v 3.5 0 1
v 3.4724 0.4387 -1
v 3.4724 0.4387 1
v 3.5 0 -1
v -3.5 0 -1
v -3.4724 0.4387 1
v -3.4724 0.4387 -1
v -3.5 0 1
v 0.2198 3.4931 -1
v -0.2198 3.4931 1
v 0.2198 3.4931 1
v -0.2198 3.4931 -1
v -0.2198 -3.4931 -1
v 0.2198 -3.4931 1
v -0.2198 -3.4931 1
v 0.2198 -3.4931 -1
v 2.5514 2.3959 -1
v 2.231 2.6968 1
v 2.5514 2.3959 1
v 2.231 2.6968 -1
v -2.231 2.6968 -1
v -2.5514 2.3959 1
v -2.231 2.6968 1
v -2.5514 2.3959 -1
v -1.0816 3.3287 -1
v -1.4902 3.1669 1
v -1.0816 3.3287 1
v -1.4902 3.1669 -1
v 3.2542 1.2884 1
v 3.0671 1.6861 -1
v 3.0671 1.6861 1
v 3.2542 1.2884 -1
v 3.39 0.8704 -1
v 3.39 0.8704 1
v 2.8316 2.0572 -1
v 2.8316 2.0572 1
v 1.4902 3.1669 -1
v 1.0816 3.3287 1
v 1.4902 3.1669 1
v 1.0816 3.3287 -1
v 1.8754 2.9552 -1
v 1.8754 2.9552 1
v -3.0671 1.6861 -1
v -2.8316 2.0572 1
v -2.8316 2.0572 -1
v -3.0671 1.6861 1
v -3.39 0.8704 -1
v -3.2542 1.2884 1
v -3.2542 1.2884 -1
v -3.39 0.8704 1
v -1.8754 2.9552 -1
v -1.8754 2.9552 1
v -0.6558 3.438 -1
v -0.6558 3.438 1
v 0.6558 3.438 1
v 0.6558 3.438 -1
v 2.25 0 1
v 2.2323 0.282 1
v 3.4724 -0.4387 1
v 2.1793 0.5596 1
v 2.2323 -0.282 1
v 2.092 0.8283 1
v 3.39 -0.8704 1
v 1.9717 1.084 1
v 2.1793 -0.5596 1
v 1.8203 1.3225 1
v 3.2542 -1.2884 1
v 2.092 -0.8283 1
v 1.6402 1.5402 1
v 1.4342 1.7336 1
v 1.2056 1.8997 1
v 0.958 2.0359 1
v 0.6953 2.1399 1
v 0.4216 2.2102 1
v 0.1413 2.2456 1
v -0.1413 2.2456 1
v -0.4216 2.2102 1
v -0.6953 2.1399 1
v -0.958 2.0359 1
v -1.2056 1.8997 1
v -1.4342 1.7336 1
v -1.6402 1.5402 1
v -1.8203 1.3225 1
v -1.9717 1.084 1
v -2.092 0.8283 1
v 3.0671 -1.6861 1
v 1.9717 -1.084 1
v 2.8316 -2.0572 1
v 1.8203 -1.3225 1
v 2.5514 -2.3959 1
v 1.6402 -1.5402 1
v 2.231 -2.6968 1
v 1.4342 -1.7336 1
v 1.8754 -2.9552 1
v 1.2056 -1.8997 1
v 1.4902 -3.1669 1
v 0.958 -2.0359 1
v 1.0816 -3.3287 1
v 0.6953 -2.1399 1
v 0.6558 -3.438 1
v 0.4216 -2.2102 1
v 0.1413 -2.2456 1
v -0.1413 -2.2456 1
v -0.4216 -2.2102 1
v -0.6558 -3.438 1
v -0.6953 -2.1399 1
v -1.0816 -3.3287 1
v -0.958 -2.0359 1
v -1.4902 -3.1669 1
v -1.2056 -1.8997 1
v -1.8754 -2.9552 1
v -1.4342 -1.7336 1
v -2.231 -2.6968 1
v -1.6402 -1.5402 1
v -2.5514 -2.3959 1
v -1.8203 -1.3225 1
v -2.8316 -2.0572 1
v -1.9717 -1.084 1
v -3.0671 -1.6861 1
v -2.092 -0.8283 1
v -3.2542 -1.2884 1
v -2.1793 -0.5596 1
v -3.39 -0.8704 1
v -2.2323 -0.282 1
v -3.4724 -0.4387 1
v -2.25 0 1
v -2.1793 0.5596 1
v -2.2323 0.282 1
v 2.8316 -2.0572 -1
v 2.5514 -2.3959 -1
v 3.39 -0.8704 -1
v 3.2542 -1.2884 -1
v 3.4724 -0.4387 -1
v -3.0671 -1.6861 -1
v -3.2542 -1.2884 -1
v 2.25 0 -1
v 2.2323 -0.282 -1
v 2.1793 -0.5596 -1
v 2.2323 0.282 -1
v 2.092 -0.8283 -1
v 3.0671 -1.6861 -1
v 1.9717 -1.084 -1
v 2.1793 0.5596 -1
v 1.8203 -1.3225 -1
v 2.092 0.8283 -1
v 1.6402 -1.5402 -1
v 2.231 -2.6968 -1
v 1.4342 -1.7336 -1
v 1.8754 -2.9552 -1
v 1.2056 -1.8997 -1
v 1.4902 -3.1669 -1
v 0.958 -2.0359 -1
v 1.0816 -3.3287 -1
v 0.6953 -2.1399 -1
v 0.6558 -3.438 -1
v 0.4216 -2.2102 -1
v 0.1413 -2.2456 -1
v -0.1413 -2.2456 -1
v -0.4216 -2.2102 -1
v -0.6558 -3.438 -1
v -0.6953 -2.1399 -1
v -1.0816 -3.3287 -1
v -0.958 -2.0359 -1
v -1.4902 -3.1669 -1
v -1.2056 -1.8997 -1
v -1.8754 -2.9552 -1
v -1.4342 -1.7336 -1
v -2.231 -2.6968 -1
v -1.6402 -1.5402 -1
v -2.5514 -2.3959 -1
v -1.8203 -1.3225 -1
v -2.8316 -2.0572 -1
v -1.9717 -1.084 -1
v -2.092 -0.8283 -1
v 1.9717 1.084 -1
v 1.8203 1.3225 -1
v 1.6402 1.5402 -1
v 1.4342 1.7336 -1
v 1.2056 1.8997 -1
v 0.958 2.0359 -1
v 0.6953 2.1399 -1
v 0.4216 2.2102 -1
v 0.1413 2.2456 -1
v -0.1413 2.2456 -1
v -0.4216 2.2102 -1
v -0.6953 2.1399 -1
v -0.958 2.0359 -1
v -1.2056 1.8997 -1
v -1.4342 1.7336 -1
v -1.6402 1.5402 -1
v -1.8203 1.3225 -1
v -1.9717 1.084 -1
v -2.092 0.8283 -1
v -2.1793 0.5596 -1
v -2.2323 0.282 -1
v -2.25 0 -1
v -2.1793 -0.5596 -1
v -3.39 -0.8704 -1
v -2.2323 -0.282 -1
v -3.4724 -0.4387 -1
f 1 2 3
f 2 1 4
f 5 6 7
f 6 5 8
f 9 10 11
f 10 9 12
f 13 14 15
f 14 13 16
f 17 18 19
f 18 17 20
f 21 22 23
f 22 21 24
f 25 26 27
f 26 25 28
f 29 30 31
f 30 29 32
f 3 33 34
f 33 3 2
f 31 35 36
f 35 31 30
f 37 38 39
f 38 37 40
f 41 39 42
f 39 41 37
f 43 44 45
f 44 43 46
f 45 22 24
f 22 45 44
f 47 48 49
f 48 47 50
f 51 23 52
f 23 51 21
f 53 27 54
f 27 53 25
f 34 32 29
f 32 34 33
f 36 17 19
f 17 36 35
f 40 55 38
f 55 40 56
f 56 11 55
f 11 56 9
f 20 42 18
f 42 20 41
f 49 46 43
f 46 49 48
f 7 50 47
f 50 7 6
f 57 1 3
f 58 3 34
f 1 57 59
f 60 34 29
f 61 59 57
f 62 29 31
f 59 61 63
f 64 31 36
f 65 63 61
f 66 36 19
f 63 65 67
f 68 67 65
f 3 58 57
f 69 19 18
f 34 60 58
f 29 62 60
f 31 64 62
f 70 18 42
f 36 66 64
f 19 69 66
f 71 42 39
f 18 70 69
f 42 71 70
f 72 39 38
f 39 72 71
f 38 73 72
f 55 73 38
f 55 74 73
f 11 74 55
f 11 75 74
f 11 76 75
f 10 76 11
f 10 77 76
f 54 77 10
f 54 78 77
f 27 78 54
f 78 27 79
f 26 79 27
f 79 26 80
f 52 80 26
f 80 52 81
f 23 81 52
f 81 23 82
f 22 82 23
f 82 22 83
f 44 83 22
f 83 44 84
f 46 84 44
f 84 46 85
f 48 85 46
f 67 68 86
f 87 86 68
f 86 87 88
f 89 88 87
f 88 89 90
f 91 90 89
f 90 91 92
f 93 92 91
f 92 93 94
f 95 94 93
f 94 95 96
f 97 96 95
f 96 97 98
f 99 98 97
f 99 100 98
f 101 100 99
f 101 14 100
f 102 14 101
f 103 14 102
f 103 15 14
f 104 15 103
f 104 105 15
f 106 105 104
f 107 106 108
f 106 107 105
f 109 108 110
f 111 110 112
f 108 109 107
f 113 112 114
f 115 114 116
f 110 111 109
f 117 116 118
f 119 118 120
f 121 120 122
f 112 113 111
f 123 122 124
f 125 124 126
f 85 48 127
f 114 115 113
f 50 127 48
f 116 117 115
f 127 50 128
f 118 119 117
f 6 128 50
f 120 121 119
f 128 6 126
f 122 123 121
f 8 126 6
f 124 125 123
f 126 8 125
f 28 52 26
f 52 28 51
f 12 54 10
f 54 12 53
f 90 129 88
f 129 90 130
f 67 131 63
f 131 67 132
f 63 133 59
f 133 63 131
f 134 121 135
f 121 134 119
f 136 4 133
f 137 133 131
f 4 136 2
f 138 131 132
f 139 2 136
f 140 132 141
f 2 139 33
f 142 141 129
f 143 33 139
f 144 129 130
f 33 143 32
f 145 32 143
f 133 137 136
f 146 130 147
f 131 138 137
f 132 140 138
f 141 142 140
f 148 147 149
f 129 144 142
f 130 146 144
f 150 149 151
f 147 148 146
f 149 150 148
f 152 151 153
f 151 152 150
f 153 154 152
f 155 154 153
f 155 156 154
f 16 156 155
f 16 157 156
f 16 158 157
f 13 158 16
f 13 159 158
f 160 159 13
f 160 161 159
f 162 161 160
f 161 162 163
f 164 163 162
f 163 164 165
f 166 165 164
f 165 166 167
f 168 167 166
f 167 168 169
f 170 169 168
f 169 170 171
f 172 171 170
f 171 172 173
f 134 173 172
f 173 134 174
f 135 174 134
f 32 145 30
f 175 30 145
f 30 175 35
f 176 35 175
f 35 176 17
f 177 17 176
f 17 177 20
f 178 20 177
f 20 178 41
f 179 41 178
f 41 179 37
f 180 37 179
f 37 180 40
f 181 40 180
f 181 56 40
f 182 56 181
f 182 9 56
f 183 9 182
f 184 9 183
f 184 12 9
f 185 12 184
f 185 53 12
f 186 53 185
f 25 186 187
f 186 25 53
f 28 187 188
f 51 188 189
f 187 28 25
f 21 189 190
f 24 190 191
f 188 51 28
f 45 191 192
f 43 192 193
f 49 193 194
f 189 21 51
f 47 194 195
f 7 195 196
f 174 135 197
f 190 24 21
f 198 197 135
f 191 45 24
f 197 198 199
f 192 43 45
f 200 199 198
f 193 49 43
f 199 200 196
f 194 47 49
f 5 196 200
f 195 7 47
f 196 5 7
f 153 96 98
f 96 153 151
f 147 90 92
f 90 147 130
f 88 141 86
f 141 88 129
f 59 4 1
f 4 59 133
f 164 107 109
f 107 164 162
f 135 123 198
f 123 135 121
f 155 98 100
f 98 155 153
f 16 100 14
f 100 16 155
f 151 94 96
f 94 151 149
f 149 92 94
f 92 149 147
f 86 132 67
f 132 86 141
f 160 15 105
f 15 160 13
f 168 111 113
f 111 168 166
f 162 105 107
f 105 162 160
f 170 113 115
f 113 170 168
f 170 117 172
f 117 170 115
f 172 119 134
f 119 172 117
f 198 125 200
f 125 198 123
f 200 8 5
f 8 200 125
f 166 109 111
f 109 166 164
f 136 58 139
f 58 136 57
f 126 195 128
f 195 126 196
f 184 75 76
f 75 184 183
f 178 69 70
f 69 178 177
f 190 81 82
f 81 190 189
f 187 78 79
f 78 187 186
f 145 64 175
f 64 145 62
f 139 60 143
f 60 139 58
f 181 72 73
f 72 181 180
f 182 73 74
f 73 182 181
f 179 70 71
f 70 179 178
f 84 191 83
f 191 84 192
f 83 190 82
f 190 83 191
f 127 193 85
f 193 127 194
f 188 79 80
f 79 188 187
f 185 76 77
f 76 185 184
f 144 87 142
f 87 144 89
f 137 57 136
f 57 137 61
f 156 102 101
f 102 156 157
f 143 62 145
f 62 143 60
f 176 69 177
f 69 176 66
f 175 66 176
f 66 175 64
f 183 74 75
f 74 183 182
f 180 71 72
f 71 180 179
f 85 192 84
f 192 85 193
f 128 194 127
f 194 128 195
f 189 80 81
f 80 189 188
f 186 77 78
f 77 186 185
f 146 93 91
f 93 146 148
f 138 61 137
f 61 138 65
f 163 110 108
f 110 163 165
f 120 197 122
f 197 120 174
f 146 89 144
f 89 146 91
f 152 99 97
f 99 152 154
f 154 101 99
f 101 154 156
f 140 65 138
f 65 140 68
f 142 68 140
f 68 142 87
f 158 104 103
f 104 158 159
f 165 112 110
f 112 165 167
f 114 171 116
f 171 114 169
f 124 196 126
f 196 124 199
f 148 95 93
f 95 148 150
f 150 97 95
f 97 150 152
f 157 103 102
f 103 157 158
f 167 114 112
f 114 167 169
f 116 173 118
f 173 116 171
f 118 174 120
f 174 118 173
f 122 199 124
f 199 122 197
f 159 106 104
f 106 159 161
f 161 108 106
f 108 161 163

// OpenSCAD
$fn = 50;


difference() {
	union() {
		translate(v = [0, 0, -1.0000000000]) {
			cylinder(h = 2, r = 3.5000000000);
		}
	}
	union() {
		translate(v = [0, 0, -100.0000000000]) {
			cylinder(h = 200, r = 2.2500000000);
		}
	}
}
